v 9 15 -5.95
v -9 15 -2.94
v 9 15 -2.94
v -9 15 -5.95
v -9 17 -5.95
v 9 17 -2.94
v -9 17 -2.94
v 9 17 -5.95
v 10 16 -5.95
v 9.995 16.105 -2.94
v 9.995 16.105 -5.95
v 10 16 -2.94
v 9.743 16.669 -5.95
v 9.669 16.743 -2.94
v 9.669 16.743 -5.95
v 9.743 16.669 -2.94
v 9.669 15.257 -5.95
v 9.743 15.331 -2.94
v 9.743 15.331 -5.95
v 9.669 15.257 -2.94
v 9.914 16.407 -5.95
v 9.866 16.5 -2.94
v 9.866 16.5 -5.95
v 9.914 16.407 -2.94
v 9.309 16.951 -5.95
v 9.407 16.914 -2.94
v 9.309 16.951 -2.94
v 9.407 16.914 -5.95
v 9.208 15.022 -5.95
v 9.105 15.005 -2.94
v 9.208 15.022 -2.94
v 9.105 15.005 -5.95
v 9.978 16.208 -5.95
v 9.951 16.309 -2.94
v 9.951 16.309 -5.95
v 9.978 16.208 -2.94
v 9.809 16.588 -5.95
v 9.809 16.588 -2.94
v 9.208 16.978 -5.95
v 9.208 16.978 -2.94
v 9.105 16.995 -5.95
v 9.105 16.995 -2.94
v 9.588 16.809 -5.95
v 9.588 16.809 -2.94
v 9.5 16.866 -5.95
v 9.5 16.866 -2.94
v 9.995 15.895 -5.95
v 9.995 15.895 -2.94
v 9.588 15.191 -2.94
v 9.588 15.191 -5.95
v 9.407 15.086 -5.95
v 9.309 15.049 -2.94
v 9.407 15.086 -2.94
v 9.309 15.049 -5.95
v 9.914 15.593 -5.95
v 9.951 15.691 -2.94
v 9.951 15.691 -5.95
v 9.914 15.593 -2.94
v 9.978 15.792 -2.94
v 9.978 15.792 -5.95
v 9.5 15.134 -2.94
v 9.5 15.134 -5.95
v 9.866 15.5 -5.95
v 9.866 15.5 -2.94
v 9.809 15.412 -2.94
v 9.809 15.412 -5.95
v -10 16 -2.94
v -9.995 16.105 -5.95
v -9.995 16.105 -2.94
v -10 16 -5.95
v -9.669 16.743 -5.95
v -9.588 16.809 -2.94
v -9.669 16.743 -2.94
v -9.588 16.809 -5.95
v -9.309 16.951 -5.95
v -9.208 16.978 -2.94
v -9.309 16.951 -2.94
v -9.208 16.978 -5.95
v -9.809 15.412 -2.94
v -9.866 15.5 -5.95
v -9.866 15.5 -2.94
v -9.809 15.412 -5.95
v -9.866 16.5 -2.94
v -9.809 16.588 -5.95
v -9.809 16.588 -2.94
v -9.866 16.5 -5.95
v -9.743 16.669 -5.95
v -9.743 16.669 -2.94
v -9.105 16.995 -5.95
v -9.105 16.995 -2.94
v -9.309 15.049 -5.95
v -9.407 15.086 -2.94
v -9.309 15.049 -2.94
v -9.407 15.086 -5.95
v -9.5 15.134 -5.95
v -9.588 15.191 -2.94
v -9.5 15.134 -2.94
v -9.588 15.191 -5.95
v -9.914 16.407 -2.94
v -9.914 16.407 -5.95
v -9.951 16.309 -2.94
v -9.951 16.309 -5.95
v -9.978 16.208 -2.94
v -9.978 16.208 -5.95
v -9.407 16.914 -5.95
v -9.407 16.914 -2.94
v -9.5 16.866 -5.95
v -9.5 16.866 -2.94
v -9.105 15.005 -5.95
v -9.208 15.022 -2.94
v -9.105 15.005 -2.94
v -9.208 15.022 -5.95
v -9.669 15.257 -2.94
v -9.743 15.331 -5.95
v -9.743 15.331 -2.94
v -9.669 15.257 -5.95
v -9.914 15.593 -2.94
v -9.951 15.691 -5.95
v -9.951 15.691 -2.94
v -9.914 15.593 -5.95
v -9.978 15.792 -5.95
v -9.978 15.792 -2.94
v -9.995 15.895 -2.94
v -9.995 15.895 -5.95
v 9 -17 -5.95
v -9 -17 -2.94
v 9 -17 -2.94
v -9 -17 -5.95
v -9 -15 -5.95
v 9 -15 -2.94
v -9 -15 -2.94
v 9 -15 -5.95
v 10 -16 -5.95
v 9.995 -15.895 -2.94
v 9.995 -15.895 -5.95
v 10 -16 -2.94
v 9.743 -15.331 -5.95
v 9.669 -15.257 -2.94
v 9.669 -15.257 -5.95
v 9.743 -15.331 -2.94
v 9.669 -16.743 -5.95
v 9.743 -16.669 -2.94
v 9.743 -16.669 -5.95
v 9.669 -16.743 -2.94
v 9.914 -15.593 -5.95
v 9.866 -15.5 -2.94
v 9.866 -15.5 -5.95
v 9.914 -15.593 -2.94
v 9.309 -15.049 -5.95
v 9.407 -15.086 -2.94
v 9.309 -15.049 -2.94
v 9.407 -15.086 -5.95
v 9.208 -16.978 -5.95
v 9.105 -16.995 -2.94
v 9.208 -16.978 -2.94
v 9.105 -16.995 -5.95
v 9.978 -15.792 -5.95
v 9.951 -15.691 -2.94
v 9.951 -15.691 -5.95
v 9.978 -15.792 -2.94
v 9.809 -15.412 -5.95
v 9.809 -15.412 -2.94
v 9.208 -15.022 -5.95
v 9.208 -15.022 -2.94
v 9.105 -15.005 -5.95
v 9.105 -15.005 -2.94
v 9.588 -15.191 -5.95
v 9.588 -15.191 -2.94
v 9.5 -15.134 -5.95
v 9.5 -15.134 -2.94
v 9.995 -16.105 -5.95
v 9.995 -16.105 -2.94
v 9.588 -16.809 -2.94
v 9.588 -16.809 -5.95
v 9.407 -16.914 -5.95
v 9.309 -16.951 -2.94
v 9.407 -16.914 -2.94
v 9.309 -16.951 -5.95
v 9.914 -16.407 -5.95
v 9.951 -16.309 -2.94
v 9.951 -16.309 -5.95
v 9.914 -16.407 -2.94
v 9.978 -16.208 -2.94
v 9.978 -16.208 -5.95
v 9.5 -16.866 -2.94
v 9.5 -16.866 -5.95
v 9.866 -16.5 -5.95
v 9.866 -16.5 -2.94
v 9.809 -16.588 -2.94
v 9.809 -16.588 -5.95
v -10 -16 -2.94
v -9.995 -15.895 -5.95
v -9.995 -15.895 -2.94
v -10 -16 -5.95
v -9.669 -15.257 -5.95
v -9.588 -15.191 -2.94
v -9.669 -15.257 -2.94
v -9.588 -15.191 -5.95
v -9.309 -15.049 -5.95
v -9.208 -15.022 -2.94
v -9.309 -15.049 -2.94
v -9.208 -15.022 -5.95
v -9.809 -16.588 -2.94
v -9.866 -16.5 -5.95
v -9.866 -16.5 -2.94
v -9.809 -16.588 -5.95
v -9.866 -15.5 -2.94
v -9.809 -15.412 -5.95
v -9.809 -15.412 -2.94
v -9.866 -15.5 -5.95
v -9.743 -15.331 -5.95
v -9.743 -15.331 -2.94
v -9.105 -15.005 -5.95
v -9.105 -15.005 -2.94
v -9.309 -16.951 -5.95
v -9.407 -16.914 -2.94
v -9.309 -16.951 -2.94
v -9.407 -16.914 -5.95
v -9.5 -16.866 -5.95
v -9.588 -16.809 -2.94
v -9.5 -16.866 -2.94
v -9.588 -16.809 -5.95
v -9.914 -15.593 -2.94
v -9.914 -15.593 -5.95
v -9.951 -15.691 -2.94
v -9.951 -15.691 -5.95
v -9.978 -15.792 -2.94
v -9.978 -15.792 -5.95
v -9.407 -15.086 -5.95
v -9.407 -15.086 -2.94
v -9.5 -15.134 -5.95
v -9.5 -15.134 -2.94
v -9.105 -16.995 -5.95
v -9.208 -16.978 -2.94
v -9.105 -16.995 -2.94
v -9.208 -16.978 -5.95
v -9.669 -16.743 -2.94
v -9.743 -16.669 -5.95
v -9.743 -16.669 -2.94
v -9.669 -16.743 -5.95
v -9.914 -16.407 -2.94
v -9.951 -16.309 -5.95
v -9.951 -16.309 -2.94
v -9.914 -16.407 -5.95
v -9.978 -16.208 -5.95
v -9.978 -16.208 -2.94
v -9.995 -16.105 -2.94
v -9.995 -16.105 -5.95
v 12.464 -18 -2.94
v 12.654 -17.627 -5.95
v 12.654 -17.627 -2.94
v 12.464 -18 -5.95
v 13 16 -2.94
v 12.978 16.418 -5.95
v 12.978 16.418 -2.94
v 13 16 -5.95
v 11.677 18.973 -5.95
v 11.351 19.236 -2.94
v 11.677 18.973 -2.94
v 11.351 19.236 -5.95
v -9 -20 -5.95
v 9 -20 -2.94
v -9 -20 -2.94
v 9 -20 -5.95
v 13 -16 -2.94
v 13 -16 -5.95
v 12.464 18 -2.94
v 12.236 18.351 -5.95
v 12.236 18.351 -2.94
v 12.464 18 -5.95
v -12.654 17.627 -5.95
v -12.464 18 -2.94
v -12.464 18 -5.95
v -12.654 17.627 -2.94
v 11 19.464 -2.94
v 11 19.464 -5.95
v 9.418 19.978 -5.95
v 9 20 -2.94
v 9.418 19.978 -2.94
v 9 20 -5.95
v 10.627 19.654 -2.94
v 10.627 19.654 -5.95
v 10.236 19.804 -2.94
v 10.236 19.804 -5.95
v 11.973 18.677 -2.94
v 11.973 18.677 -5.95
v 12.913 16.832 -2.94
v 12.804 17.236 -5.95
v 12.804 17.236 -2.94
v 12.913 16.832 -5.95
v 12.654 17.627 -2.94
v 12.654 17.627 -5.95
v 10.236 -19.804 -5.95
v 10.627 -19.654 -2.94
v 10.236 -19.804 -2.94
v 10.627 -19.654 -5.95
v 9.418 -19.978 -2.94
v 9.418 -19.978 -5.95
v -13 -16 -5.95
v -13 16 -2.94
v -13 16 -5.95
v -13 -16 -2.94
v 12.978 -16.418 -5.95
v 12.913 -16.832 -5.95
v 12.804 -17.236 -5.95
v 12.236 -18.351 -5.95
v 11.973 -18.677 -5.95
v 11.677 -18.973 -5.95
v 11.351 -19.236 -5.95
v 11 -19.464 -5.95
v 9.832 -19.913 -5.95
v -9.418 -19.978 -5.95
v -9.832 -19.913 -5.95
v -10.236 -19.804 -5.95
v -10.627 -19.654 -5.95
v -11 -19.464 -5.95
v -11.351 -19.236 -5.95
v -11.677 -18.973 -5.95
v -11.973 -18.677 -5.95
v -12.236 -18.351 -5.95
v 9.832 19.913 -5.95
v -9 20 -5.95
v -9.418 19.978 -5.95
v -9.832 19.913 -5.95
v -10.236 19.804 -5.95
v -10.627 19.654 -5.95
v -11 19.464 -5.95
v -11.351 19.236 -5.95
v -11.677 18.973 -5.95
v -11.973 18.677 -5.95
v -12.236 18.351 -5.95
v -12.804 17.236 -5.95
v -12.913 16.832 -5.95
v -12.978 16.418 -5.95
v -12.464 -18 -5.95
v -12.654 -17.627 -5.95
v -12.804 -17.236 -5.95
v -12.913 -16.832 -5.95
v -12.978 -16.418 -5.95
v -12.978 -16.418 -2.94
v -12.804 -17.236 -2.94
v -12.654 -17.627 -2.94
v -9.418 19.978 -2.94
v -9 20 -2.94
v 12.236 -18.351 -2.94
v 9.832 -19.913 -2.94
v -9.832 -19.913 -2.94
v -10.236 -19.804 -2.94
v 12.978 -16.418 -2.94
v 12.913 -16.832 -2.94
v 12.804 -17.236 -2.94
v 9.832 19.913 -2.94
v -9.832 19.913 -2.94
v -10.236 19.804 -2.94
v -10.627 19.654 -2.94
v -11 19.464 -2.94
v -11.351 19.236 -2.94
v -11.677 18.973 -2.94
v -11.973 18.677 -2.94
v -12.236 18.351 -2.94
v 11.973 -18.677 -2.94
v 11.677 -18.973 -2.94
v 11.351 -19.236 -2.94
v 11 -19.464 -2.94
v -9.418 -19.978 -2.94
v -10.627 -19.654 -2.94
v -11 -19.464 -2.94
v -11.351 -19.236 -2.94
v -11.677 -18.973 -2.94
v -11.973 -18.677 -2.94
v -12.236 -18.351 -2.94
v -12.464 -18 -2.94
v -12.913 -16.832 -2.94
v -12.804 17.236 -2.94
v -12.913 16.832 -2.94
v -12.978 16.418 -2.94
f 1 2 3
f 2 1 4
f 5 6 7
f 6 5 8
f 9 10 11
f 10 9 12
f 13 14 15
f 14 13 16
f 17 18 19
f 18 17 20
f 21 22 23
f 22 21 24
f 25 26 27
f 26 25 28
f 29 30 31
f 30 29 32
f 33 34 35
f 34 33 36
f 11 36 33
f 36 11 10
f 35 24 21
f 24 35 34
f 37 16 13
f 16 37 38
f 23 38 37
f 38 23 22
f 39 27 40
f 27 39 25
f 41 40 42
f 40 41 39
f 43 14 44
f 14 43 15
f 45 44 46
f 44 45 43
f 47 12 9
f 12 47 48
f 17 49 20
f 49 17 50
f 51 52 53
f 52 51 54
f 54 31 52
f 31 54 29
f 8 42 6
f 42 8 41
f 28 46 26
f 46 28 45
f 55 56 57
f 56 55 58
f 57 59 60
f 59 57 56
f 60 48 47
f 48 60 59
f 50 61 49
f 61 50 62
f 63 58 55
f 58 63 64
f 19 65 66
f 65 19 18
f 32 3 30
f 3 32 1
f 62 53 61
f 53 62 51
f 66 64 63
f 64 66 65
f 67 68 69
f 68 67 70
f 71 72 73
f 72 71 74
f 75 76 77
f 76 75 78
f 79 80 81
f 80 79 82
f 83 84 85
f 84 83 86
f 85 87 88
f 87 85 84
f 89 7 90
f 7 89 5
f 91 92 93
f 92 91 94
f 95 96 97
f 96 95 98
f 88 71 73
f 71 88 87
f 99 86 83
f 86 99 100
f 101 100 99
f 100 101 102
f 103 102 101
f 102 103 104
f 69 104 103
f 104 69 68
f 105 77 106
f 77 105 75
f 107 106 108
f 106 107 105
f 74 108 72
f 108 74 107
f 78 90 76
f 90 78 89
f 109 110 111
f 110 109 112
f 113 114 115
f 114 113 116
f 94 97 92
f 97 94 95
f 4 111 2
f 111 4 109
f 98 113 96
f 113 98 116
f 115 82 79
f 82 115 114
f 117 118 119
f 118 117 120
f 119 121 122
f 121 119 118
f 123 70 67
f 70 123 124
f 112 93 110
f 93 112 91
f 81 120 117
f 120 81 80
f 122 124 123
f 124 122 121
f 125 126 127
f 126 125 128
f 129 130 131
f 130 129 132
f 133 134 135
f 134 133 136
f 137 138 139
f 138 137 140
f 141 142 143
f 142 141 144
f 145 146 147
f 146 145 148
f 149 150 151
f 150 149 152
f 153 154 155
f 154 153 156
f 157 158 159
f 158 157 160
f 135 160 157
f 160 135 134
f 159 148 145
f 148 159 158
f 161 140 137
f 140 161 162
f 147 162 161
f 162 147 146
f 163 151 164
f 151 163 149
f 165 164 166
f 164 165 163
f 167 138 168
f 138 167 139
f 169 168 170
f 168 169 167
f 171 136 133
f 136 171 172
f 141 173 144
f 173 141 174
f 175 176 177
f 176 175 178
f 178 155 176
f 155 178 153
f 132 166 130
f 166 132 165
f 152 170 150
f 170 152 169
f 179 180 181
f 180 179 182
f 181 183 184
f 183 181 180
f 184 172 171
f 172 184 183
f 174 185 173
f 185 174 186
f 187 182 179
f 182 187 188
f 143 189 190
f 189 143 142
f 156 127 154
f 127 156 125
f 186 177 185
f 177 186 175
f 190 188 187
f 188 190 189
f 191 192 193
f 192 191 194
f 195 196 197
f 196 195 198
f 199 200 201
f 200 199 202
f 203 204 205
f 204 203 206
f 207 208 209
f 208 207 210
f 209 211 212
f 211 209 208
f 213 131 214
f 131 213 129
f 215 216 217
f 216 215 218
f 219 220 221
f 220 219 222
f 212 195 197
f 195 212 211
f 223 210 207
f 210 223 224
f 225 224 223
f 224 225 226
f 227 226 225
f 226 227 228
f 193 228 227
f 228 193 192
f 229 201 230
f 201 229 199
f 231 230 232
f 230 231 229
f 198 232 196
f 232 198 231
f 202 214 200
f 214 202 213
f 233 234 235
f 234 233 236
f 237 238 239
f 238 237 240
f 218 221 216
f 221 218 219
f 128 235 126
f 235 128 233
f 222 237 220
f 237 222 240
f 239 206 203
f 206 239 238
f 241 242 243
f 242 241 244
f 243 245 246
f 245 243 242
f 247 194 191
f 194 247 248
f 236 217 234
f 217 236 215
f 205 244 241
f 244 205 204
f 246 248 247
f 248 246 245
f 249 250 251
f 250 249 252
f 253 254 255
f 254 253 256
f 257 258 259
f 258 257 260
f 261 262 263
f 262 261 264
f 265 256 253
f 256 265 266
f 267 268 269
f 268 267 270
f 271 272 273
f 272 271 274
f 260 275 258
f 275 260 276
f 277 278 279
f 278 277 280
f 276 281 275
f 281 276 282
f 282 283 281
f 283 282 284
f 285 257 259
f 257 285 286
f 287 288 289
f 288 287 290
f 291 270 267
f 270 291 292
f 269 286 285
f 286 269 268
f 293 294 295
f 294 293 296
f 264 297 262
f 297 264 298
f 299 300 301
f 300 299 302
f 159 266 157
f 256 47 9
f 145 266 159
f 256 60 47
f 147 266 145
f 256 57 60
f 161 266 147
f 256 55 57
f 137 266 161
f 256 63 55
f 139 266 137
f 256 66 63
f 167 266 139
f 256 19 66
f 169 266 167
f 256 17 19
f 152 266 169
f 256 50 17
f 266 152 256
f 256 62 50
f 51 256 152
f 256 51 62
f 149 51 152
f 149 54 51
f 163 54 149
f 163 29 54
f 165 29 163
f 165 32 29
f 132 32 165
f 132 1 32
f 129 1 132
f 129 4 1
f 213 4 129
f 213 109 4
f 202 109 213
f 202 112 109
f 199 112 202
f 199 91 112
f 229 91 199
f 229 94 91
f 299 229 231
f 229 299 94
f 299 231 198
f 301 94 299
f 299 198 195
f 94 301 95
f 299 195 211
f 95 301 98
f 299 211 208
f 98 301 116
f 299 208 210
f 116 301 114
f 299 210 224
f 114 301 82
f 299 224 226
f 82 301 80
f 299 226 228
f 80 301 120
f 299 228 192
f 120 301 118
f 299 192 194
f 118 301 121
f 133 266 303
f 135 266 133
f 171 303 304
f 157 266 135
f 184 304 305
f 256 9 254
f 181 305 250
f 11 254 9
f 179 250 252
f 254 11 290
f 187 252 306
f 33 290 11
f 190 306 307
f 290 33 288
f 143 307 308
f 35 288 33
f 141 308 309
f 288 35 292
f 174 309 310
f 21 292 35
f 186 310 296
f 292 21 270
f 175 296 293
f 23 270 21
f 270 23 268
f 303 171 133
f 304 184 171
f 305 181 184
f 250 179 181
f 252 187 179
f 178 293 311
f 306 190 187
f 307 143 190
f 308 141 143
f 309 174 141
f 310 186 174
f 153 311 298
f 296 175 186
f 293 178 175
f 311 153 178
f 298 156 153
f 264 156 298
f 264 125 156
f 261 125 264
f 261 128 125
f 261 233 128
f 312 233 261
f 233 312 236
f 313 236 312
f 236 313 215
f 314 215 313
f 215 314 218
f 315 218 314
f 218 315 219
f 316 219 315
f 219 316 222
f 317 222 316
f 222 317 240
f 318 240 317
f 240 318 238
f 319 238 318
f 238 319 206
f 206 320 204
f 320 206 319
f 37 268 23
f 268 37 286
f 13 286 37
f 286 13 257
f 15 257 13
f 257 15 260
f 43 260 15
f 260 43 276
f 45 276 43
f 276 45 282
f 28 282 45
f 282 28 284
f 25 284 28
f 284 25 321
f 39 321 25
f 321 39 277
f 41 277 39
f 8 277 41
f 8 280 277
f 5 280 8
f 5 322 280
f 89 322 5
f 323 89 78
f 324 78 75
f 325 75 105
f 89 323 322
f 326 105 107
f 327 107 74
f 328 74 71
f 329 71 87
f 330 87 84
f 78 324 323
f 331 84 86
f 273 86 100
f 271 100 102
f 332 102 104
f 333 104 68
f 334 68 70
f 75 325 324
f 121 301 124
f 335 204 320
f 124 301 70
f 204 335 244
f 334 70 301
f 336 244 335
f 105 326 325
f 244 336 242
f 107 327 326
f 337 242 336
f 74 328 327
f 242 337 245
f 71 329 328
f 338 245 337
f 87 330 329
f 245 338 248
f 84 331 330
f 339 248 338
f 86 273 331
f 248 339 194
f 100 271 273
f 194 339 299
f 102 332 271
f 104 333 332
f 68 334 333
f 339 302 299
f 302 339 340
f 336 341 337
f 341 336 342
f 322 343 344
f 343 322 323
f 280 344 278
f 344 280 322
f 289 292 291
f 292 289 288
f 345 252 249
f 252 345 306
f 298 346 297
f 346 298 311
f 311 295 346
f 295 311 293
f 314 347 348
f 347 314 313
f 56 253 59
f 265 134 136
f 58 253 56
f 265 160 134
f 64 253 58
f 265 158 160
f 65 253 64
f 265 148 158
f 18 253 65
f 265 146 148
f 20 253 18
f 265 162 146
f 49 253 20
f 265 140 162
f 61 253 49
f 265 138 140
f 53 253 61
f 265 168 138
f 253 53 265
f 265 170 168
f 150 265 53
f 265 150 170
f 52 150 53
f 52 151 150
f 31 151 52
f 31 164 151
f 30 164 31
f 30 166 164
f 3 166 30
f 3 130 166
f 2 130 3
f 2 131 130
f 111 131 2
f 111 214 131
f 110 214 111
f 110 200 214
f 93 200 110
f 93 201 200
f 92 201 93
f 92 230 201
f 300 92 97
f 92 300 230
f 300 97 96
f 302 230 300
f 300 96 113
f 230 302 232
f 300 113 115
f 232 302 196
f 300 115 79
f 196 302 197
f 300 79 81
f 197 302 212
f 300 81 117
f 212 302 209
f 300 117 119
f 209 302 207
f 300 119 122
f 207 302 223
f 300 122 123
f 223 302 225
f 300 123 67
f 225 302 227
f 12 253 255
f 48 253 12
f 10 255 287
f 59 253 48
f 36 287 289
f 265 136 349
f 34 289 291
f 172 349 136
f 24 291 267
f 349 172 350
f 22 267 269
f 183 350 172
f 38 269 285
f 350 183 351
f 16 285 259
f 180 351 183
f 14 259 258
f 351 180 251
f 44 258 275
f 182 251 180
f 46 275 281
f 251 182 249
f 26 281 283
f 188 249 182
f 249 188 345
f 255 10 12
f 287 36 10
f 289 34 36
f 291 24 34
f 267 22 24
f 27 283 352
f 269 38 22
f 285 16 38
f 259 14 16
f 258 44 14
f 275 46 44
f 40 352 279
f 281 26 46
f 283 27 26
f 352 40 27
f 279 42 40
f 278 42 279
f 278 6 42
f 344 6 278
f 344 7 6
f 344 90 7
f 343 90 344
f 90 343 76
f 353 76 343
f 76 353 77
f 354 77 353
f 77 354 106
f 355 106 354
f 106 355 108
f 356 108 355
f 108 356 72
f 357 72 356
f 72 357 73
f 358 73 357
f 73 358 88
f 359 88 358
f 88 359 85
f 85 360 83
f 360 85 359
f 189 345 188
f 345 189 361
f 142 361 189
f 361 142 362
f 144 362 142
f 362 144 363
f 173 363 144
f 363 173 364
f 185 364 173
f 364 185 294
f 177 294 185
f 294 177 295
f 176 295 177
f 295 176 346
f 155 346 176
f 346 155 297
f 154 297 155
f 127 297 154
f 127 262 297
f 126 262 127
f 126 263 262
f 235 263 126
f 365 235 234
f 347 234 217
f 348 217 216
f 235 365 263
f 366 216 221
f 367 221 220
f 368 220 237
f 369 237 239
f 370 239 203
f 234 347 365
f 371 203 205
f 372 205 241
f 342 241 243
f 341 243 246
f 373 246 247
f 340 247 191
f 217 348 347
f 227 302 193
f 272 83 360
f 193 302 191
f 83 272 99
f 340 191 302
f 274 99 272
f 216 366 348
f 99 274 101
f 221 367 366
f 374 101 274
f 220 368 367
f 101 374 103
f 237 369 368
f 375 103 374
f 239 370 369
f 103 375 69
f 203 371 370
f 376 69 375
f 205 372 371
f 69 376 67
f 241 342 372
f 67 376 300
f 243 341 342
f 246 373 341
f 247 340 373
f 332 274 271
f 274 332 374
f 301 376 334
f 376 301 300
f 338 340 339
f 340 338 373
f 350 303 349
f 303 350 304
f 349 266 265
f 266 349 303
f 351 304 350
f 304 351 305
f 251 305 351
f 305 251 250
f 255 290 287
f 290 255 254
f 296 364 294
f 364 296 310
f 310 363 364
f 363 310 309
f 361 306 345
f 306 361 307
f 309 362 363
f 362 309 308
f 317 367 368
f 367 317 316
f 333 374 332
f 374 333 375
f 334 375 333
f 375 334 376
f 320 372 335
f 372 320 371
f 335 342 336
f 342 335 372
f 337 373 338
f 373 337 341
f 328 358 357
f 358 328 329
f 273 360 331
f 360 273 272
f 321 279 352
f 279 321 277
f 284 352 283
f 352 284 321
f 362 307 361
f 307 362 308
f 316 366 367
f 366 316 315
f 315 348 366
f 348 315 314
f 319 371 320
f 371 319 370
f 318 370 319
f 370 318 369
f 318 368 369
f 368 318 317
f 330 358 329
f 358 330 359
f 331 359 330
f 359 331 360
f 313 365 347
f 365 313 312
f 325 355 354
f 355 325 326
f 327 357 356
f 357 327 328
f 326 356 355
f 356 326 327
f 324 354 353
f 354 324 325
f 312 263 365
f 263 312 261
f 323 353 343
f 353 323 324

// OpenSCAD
// Center mounting plate for a drone frame

/* 3D Printer Settings:
wall line count: 5
top/bottom layers: 0
infill density: 30%
infill pattern: grid (ideal for tiewraps)
*/

//=======================================================================
// Config
//=======================================================================
//beam diameter
dia1=6.5;

//wall thickness main cross beam
wall=1.5;

//mounting plate
plate_w = 40;
plate_l = 26;
plate_h = .6;

//strap
strap_l = 18;
strap_w = 2;

//edge
edge_w = 2;
edge_h = 3;

mink_r = 4;
//=======================================================================

$fn=60;  //number of fragments
out1 = dia1+2*wall; //outside diameter
strap_y = plate_w/2-strap_w/2-edge_h; //strap center y pos
  
difference() {
  minkowski() {
    //plate with edge thickness
    translate([0,0,-out1/2+plate_h/2]) cube([plate_l-2*mink_r,plate_w-2*mink_r,edge_h],center=true);
    cylinder(r=mink_r,h=0.01);    
  }
  //remove excess plate thickness, except for edge
  //cube([plate_l-edge_w*2,plate_w-2*edge_w,out1-2*plate_h],center=true);

  //drill strap holes
  translate([0,+strap_y,0]) StrapHole();
  translate([0,-strap_y,0]) StrapHole();
}

module StrapHole() {
  union() {
    cube([strap_l,strap_w,999],center=true);
    translate([+strap_l/2,0,0]) cylinder(h=999,d=strap_w,center=true);
    translate([-strap_l/2,0,0]) cylinder(h=999,d=strap_w,center=true);    
  }
}
